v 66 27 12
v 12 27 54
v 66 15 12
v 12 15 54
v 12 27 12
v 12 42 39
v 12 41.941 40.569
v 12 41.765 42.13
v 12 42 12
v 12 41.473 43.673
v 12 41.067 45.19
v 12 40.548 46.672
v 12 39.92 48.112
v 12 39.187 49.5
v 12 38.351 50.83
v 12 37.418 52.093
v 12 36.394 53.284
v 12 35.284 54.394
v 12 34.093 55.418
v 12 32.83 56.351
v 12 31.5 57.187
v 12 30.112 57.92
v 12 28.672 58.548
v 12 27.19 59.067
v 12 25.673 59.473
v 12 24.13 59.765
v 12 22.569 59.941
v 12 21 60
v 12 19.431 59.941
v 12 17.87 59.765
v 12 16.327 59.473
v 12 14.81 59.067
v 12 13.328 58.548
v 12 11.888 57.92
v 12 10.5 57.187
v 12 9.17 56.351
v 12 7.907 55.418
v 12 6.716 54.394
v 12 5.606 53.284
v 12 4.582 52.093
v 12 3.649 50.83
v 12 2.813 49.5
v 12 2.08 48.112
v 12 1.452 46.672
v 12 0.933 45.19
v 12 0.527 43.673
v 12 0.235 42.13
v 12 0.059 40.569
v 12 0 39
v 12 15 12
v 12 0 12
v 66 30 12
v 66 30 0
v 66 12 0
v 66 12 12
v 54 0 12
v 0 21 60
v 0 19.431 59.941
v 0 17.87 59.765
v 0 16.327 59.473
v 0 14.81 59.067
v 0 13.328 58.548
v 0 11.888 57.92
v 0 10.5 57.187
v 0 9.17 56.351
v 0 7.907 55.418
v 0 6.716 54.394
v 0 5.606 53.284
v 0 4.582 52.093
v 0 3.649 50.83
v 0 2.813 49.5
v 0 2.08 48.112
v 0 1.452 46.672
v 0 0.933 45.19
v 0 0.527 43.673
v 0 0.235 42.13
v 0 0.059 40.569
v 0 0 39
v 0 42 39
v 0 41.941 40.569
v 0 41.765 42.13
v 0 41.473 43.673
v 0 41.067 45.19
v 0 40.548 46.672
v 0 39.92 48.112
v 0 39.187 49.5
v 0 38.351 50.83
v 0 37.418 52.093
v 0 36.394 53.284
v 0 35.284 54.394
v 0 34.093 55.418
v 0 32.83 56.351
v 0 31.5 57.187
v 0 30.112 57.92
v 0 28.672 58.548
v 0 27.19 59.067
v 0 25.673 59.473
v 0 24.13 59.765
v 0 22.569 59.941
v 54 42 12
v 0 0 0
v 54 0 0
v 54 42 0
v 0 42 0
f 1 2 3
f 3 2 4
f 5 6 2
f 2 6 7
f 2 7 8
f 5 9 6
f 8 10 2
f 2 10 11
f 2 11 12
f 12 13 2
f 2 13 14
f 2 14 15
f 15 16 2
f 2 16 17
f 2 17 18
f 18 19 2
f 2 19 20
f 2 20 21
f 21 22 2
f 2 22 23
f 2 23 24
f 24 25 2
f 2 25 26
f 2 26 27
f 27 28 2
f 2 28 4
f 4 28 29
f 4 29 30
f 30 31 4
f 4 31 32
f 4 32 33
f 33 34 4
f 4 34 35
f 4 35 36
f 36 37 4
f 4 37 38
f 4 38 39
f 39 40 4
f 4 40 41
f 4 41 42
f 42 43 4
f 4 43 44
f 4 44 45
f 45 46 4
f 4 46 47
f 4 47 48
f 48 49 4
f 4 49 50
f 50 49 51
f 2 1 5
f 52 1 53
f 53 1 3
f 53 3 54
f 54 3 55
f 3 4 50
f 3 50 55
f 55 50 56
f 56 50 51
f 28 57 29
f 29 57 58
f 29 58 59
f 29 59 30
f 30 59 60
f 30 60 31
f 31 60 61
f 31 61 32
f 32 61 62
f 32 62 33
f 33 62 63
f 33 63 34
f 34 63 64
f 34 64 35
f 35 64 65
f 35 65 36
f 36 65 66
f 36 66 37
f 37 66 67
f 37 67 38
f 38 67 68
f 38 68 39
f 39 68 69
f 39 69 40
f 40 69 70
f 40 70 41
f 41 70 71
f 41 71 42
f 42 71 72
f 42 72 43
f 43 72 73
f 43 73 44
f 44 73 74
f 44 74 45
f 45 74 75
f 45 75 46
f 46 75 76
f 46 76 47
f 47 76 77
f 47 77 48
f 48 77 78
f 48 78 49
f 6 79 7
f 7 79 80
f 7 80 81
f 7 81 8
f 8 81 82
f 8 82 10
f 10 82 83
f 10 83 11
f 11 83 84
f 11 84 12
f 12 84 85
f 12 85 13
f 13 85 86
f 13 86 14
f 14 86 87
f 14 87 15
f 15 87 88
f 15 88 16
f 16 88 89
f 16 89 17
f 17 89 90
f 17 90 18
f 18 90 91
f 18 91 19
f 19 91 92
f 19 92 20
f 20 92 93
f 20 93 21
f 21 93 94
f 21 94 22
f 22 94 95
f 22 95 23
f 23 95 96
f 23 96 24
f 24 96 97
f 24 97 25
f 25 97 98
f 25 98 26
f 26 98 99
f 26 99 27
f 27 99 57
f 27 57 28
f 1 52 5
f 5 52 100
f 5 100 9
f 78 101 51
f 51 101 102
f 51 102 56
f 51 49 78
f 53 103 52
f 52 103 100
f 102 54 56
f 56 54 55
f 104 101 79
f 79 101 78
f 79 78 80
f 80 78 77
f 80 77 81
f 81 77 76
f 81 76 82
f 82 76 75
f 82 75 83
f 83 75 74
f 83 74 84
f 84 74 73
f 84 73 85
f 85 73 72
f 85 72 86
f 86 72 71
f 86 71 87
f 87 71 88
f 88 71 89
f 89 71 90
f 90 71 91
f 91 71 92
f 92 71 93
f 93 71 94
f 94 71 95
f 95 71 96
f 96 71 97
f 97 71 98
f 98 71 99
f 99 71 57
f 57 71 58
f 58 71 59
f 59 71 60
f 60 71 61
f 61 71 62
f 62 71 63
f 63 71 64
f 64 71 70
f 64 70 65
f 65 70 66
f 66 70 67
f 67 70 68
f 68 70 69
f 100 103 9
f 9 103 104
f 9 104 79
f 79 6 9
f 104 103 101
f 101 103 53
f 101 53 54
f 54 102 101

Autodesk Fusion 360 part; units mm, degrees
sketch "Sketch1" plane through (0, 0, 0) normal (0, 0, 1) x (1, 0, 0)
sketch "Sketch3" plane through (0, 0, 0) normal (0, 0, 1) x (1, 0, 0)
  line L0 (0, 0) -> (66, 0)
  line L1 (66, 0) -> (66, 42)
  line L2 (66, 42) -> (0, 42)
  line L3 (0, 42) -> (0, 0)
  line L4 (66, 0) -> (54, 0)
  line L5 (54, 0) -> (54, 12)
  line L6 (54, 12) -> (66, 12)
  line L7 (66, 12) -> (66, 0)
  line L8 (66, 42) -> (54, 42)
  line L9 (54, 42) -> (54, 30)
  line L10 (54, 30) -> (66, 30)
  line L11 (66, 30) -> (66, 42)
  line L12 (54, 42) -> (66, 30)
  line L13 (66, 12) -> (54, 0)
  point P0 (54, 42)
  point P1 (66, 30)
  point P2 (54, 0)
  point P3 (66, 12)
  dimension "d11" = 66
  dimension "d12" = 42
  dimension "d13" = 12
  dimension "d14" = 12
  dimension "d15" = 12
  dimension "d16" = 12
extrude "Extrude1" add sketch "Sketch3" along normal blind 12 contours L0 L1 L2 L3 L5 L6 L9 L10 | L5 L6 L13 | L9 L10 L12
sketch "Sketch4" plane through (0, 0, 0) normal (1, 0, 0) x (0, 1, 0)
  line L0 (0, 0) -> (42, 0)
  line L1 (42, 0) -> (42, 39)
  line L2 (21.0001, 60) -> (21, 60)
  line L3 (0, 39) -> (0, 0)
  line L4 (21, 0) -> (21, 39)
  line L5 (0, 39) -> (42, 39)
  arc A0 (21, 60) -> (0, 39) centre (21, 39) ccw
  arc A1 (42, 39) -> (21.0001, 60) centre (21, 39) ccw
  point P0 (0, 60)
  dimension "d19" = 42
  dimension "d20" = 60
  dimension "d21" = 39
  dimension "d22" = 21
extrude "Extrude2" add sketch "Sketch4" along normal blind 12
sketch "Sketch5" plane through (0, 0, 12) normal (0, 0, 1) x (-1, 0, 0)
  line L0 (-12, -42) -> (-12, 0)
  line L1 (-12, 0) -> (-54, 0)
  line L2 (-54, 0) -> (-66, -12)
  line L3 (-66, -12) -> (-66, -30)
  line L4 (-66, -30) -> (-54, -42)
  line L5 (-54, -42) -> (-12, -42)
  line L6 (-25, 0) -> (-25, -15)
  line L7 (-25, -27) -> (-25, -42)
  line L8 (-25, -42) -> (-25, -27)
  line L9 (-12, -27) -> (-66, -27)
  line L10 (-66, -27) -> (-66, -15)
  line L11 (-66, -15) -> (-12, -15)
  line L12 (-12, -15) -> (-12, -27)
  dimension "d25" = 15
  dimension "d26" = 15
  dimension "d27" = 15
  dimension "d28" = 12
extrude "Extrude3" add sketch "Sketch5" along normal blind 42 contours L0 L3 L9 L10 L11 L12
sketch "Sketch6" plane through (0, 15, 0) normal (0, -1, 0) x (1, 0, 0)
  line L0 (12, 12) -> (66, 12)
  line L1 (66, 12) -> (66, 54)
  line L2 (66, 54) -> (12, 54)
  line L3 (12, 54) -> (12, 12)
  line L4 (66, 12) -> (12, 54)
extrude "Extrude4" cut sketch "Sketch6" against normal blind 29 contours L1 L2 L4
sketch "Sketch7" plane through (30.6923, 0, 39.4615) normal (0.6139, 0, 0.7894) x (0, 1, 0)
  line L0 (27, -44.73) -> (27, 23.6806)
  line L1 (27, 23.6806) -> (15, 23.6806)
  line L2 (15, 23.6806) -> (15, -44.73)
  line L3 (15, -44.73) -> (27, -44.73)
  dimension "d33" = 12
sketch "Sketch2" plane through (0, 0, 0) normal (1, 0, 0) x (0, 1, 0)
  line L0 (0, 0) -> (42, 0)
  line L1 (42, 0) -> (42, 60)
  line L2 (42, 60) -> (0, 60)
  line L3 (0, 60) -> (0, 0)
  dimension "d5" = 60
  dimension "d6" = 42
